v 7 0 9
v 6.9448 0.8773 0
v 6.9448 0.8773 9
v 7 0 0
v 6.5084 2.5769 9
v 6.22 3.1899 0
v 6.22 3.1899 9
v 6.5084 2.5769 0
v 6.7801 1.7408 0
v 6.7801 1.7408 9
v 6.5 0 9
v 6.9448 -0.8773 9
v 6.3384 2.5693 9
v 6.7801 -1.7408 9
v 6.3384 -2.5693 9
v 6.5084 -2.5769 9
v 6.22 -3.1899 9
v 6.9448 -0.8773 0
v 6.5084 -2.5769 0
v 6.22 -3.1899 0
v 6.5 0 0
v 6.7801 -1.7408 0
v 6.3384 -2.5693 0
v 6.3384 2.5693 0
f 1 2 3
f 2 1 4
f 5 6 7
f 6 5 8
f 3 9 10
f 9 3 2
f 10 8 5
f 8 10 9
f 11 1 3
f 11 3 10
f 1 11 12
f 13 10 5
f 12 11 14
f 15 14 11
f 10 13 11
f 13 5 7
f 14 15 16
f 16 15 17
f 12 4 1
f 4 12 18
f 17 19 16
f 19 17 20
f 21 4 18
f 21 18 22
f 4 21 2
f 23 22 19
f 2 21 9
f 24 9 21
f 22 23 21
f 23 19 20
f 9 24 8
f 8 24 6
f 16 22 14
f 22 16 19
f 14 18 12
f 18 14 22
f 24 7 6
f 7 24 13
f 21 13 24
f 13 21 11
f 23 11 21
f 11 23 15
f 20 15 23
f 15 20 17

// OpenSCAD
$fn = 50;


difference() {
	union() {
		cylinder(h = 9, r = 7.0000000000);
		translate(v = [-17.0000000000, 0, 0]) {
			cylinder(h = 9, r = 7.0000000000);
		}
	}
	union() {
		cylinder(h = 9, r = 3.2500000000);
		cylinder(h = 9, r = 1.8000000000);
		cylinder(h = 9, r = 1.8000000000);
		cylinder(h = 9, r = 1.8000000000);
		translate(v = [-21.5000000000, 0, 0]) {
			hull() {
				translate(v = [-3.7500000000, 0.0000000000, 0]) {
					cylinder(h = 9, r = 10.5000000000);
				}
				translate(v = [3.7500000000, 0.0000000000, 0]) {
					cylinder(h = 9, r = 10.5000000000);
				}
				translate(v = [-3.7500000000, -0.0000000000, 0]) {
					cylinder(h = 9, r = 10.5000000000);
				}
				translate(v = [3.7500000000, -0.0000000000, 0]) {
					cylinder(h = 9, r = 10.5000000000);
				}
			}
		}
		translate(v = [-14.0000000000, 0, 0.0000000000]) {
			cylinder(h = 9, r = 20.5000000000);
		}
	}
}
